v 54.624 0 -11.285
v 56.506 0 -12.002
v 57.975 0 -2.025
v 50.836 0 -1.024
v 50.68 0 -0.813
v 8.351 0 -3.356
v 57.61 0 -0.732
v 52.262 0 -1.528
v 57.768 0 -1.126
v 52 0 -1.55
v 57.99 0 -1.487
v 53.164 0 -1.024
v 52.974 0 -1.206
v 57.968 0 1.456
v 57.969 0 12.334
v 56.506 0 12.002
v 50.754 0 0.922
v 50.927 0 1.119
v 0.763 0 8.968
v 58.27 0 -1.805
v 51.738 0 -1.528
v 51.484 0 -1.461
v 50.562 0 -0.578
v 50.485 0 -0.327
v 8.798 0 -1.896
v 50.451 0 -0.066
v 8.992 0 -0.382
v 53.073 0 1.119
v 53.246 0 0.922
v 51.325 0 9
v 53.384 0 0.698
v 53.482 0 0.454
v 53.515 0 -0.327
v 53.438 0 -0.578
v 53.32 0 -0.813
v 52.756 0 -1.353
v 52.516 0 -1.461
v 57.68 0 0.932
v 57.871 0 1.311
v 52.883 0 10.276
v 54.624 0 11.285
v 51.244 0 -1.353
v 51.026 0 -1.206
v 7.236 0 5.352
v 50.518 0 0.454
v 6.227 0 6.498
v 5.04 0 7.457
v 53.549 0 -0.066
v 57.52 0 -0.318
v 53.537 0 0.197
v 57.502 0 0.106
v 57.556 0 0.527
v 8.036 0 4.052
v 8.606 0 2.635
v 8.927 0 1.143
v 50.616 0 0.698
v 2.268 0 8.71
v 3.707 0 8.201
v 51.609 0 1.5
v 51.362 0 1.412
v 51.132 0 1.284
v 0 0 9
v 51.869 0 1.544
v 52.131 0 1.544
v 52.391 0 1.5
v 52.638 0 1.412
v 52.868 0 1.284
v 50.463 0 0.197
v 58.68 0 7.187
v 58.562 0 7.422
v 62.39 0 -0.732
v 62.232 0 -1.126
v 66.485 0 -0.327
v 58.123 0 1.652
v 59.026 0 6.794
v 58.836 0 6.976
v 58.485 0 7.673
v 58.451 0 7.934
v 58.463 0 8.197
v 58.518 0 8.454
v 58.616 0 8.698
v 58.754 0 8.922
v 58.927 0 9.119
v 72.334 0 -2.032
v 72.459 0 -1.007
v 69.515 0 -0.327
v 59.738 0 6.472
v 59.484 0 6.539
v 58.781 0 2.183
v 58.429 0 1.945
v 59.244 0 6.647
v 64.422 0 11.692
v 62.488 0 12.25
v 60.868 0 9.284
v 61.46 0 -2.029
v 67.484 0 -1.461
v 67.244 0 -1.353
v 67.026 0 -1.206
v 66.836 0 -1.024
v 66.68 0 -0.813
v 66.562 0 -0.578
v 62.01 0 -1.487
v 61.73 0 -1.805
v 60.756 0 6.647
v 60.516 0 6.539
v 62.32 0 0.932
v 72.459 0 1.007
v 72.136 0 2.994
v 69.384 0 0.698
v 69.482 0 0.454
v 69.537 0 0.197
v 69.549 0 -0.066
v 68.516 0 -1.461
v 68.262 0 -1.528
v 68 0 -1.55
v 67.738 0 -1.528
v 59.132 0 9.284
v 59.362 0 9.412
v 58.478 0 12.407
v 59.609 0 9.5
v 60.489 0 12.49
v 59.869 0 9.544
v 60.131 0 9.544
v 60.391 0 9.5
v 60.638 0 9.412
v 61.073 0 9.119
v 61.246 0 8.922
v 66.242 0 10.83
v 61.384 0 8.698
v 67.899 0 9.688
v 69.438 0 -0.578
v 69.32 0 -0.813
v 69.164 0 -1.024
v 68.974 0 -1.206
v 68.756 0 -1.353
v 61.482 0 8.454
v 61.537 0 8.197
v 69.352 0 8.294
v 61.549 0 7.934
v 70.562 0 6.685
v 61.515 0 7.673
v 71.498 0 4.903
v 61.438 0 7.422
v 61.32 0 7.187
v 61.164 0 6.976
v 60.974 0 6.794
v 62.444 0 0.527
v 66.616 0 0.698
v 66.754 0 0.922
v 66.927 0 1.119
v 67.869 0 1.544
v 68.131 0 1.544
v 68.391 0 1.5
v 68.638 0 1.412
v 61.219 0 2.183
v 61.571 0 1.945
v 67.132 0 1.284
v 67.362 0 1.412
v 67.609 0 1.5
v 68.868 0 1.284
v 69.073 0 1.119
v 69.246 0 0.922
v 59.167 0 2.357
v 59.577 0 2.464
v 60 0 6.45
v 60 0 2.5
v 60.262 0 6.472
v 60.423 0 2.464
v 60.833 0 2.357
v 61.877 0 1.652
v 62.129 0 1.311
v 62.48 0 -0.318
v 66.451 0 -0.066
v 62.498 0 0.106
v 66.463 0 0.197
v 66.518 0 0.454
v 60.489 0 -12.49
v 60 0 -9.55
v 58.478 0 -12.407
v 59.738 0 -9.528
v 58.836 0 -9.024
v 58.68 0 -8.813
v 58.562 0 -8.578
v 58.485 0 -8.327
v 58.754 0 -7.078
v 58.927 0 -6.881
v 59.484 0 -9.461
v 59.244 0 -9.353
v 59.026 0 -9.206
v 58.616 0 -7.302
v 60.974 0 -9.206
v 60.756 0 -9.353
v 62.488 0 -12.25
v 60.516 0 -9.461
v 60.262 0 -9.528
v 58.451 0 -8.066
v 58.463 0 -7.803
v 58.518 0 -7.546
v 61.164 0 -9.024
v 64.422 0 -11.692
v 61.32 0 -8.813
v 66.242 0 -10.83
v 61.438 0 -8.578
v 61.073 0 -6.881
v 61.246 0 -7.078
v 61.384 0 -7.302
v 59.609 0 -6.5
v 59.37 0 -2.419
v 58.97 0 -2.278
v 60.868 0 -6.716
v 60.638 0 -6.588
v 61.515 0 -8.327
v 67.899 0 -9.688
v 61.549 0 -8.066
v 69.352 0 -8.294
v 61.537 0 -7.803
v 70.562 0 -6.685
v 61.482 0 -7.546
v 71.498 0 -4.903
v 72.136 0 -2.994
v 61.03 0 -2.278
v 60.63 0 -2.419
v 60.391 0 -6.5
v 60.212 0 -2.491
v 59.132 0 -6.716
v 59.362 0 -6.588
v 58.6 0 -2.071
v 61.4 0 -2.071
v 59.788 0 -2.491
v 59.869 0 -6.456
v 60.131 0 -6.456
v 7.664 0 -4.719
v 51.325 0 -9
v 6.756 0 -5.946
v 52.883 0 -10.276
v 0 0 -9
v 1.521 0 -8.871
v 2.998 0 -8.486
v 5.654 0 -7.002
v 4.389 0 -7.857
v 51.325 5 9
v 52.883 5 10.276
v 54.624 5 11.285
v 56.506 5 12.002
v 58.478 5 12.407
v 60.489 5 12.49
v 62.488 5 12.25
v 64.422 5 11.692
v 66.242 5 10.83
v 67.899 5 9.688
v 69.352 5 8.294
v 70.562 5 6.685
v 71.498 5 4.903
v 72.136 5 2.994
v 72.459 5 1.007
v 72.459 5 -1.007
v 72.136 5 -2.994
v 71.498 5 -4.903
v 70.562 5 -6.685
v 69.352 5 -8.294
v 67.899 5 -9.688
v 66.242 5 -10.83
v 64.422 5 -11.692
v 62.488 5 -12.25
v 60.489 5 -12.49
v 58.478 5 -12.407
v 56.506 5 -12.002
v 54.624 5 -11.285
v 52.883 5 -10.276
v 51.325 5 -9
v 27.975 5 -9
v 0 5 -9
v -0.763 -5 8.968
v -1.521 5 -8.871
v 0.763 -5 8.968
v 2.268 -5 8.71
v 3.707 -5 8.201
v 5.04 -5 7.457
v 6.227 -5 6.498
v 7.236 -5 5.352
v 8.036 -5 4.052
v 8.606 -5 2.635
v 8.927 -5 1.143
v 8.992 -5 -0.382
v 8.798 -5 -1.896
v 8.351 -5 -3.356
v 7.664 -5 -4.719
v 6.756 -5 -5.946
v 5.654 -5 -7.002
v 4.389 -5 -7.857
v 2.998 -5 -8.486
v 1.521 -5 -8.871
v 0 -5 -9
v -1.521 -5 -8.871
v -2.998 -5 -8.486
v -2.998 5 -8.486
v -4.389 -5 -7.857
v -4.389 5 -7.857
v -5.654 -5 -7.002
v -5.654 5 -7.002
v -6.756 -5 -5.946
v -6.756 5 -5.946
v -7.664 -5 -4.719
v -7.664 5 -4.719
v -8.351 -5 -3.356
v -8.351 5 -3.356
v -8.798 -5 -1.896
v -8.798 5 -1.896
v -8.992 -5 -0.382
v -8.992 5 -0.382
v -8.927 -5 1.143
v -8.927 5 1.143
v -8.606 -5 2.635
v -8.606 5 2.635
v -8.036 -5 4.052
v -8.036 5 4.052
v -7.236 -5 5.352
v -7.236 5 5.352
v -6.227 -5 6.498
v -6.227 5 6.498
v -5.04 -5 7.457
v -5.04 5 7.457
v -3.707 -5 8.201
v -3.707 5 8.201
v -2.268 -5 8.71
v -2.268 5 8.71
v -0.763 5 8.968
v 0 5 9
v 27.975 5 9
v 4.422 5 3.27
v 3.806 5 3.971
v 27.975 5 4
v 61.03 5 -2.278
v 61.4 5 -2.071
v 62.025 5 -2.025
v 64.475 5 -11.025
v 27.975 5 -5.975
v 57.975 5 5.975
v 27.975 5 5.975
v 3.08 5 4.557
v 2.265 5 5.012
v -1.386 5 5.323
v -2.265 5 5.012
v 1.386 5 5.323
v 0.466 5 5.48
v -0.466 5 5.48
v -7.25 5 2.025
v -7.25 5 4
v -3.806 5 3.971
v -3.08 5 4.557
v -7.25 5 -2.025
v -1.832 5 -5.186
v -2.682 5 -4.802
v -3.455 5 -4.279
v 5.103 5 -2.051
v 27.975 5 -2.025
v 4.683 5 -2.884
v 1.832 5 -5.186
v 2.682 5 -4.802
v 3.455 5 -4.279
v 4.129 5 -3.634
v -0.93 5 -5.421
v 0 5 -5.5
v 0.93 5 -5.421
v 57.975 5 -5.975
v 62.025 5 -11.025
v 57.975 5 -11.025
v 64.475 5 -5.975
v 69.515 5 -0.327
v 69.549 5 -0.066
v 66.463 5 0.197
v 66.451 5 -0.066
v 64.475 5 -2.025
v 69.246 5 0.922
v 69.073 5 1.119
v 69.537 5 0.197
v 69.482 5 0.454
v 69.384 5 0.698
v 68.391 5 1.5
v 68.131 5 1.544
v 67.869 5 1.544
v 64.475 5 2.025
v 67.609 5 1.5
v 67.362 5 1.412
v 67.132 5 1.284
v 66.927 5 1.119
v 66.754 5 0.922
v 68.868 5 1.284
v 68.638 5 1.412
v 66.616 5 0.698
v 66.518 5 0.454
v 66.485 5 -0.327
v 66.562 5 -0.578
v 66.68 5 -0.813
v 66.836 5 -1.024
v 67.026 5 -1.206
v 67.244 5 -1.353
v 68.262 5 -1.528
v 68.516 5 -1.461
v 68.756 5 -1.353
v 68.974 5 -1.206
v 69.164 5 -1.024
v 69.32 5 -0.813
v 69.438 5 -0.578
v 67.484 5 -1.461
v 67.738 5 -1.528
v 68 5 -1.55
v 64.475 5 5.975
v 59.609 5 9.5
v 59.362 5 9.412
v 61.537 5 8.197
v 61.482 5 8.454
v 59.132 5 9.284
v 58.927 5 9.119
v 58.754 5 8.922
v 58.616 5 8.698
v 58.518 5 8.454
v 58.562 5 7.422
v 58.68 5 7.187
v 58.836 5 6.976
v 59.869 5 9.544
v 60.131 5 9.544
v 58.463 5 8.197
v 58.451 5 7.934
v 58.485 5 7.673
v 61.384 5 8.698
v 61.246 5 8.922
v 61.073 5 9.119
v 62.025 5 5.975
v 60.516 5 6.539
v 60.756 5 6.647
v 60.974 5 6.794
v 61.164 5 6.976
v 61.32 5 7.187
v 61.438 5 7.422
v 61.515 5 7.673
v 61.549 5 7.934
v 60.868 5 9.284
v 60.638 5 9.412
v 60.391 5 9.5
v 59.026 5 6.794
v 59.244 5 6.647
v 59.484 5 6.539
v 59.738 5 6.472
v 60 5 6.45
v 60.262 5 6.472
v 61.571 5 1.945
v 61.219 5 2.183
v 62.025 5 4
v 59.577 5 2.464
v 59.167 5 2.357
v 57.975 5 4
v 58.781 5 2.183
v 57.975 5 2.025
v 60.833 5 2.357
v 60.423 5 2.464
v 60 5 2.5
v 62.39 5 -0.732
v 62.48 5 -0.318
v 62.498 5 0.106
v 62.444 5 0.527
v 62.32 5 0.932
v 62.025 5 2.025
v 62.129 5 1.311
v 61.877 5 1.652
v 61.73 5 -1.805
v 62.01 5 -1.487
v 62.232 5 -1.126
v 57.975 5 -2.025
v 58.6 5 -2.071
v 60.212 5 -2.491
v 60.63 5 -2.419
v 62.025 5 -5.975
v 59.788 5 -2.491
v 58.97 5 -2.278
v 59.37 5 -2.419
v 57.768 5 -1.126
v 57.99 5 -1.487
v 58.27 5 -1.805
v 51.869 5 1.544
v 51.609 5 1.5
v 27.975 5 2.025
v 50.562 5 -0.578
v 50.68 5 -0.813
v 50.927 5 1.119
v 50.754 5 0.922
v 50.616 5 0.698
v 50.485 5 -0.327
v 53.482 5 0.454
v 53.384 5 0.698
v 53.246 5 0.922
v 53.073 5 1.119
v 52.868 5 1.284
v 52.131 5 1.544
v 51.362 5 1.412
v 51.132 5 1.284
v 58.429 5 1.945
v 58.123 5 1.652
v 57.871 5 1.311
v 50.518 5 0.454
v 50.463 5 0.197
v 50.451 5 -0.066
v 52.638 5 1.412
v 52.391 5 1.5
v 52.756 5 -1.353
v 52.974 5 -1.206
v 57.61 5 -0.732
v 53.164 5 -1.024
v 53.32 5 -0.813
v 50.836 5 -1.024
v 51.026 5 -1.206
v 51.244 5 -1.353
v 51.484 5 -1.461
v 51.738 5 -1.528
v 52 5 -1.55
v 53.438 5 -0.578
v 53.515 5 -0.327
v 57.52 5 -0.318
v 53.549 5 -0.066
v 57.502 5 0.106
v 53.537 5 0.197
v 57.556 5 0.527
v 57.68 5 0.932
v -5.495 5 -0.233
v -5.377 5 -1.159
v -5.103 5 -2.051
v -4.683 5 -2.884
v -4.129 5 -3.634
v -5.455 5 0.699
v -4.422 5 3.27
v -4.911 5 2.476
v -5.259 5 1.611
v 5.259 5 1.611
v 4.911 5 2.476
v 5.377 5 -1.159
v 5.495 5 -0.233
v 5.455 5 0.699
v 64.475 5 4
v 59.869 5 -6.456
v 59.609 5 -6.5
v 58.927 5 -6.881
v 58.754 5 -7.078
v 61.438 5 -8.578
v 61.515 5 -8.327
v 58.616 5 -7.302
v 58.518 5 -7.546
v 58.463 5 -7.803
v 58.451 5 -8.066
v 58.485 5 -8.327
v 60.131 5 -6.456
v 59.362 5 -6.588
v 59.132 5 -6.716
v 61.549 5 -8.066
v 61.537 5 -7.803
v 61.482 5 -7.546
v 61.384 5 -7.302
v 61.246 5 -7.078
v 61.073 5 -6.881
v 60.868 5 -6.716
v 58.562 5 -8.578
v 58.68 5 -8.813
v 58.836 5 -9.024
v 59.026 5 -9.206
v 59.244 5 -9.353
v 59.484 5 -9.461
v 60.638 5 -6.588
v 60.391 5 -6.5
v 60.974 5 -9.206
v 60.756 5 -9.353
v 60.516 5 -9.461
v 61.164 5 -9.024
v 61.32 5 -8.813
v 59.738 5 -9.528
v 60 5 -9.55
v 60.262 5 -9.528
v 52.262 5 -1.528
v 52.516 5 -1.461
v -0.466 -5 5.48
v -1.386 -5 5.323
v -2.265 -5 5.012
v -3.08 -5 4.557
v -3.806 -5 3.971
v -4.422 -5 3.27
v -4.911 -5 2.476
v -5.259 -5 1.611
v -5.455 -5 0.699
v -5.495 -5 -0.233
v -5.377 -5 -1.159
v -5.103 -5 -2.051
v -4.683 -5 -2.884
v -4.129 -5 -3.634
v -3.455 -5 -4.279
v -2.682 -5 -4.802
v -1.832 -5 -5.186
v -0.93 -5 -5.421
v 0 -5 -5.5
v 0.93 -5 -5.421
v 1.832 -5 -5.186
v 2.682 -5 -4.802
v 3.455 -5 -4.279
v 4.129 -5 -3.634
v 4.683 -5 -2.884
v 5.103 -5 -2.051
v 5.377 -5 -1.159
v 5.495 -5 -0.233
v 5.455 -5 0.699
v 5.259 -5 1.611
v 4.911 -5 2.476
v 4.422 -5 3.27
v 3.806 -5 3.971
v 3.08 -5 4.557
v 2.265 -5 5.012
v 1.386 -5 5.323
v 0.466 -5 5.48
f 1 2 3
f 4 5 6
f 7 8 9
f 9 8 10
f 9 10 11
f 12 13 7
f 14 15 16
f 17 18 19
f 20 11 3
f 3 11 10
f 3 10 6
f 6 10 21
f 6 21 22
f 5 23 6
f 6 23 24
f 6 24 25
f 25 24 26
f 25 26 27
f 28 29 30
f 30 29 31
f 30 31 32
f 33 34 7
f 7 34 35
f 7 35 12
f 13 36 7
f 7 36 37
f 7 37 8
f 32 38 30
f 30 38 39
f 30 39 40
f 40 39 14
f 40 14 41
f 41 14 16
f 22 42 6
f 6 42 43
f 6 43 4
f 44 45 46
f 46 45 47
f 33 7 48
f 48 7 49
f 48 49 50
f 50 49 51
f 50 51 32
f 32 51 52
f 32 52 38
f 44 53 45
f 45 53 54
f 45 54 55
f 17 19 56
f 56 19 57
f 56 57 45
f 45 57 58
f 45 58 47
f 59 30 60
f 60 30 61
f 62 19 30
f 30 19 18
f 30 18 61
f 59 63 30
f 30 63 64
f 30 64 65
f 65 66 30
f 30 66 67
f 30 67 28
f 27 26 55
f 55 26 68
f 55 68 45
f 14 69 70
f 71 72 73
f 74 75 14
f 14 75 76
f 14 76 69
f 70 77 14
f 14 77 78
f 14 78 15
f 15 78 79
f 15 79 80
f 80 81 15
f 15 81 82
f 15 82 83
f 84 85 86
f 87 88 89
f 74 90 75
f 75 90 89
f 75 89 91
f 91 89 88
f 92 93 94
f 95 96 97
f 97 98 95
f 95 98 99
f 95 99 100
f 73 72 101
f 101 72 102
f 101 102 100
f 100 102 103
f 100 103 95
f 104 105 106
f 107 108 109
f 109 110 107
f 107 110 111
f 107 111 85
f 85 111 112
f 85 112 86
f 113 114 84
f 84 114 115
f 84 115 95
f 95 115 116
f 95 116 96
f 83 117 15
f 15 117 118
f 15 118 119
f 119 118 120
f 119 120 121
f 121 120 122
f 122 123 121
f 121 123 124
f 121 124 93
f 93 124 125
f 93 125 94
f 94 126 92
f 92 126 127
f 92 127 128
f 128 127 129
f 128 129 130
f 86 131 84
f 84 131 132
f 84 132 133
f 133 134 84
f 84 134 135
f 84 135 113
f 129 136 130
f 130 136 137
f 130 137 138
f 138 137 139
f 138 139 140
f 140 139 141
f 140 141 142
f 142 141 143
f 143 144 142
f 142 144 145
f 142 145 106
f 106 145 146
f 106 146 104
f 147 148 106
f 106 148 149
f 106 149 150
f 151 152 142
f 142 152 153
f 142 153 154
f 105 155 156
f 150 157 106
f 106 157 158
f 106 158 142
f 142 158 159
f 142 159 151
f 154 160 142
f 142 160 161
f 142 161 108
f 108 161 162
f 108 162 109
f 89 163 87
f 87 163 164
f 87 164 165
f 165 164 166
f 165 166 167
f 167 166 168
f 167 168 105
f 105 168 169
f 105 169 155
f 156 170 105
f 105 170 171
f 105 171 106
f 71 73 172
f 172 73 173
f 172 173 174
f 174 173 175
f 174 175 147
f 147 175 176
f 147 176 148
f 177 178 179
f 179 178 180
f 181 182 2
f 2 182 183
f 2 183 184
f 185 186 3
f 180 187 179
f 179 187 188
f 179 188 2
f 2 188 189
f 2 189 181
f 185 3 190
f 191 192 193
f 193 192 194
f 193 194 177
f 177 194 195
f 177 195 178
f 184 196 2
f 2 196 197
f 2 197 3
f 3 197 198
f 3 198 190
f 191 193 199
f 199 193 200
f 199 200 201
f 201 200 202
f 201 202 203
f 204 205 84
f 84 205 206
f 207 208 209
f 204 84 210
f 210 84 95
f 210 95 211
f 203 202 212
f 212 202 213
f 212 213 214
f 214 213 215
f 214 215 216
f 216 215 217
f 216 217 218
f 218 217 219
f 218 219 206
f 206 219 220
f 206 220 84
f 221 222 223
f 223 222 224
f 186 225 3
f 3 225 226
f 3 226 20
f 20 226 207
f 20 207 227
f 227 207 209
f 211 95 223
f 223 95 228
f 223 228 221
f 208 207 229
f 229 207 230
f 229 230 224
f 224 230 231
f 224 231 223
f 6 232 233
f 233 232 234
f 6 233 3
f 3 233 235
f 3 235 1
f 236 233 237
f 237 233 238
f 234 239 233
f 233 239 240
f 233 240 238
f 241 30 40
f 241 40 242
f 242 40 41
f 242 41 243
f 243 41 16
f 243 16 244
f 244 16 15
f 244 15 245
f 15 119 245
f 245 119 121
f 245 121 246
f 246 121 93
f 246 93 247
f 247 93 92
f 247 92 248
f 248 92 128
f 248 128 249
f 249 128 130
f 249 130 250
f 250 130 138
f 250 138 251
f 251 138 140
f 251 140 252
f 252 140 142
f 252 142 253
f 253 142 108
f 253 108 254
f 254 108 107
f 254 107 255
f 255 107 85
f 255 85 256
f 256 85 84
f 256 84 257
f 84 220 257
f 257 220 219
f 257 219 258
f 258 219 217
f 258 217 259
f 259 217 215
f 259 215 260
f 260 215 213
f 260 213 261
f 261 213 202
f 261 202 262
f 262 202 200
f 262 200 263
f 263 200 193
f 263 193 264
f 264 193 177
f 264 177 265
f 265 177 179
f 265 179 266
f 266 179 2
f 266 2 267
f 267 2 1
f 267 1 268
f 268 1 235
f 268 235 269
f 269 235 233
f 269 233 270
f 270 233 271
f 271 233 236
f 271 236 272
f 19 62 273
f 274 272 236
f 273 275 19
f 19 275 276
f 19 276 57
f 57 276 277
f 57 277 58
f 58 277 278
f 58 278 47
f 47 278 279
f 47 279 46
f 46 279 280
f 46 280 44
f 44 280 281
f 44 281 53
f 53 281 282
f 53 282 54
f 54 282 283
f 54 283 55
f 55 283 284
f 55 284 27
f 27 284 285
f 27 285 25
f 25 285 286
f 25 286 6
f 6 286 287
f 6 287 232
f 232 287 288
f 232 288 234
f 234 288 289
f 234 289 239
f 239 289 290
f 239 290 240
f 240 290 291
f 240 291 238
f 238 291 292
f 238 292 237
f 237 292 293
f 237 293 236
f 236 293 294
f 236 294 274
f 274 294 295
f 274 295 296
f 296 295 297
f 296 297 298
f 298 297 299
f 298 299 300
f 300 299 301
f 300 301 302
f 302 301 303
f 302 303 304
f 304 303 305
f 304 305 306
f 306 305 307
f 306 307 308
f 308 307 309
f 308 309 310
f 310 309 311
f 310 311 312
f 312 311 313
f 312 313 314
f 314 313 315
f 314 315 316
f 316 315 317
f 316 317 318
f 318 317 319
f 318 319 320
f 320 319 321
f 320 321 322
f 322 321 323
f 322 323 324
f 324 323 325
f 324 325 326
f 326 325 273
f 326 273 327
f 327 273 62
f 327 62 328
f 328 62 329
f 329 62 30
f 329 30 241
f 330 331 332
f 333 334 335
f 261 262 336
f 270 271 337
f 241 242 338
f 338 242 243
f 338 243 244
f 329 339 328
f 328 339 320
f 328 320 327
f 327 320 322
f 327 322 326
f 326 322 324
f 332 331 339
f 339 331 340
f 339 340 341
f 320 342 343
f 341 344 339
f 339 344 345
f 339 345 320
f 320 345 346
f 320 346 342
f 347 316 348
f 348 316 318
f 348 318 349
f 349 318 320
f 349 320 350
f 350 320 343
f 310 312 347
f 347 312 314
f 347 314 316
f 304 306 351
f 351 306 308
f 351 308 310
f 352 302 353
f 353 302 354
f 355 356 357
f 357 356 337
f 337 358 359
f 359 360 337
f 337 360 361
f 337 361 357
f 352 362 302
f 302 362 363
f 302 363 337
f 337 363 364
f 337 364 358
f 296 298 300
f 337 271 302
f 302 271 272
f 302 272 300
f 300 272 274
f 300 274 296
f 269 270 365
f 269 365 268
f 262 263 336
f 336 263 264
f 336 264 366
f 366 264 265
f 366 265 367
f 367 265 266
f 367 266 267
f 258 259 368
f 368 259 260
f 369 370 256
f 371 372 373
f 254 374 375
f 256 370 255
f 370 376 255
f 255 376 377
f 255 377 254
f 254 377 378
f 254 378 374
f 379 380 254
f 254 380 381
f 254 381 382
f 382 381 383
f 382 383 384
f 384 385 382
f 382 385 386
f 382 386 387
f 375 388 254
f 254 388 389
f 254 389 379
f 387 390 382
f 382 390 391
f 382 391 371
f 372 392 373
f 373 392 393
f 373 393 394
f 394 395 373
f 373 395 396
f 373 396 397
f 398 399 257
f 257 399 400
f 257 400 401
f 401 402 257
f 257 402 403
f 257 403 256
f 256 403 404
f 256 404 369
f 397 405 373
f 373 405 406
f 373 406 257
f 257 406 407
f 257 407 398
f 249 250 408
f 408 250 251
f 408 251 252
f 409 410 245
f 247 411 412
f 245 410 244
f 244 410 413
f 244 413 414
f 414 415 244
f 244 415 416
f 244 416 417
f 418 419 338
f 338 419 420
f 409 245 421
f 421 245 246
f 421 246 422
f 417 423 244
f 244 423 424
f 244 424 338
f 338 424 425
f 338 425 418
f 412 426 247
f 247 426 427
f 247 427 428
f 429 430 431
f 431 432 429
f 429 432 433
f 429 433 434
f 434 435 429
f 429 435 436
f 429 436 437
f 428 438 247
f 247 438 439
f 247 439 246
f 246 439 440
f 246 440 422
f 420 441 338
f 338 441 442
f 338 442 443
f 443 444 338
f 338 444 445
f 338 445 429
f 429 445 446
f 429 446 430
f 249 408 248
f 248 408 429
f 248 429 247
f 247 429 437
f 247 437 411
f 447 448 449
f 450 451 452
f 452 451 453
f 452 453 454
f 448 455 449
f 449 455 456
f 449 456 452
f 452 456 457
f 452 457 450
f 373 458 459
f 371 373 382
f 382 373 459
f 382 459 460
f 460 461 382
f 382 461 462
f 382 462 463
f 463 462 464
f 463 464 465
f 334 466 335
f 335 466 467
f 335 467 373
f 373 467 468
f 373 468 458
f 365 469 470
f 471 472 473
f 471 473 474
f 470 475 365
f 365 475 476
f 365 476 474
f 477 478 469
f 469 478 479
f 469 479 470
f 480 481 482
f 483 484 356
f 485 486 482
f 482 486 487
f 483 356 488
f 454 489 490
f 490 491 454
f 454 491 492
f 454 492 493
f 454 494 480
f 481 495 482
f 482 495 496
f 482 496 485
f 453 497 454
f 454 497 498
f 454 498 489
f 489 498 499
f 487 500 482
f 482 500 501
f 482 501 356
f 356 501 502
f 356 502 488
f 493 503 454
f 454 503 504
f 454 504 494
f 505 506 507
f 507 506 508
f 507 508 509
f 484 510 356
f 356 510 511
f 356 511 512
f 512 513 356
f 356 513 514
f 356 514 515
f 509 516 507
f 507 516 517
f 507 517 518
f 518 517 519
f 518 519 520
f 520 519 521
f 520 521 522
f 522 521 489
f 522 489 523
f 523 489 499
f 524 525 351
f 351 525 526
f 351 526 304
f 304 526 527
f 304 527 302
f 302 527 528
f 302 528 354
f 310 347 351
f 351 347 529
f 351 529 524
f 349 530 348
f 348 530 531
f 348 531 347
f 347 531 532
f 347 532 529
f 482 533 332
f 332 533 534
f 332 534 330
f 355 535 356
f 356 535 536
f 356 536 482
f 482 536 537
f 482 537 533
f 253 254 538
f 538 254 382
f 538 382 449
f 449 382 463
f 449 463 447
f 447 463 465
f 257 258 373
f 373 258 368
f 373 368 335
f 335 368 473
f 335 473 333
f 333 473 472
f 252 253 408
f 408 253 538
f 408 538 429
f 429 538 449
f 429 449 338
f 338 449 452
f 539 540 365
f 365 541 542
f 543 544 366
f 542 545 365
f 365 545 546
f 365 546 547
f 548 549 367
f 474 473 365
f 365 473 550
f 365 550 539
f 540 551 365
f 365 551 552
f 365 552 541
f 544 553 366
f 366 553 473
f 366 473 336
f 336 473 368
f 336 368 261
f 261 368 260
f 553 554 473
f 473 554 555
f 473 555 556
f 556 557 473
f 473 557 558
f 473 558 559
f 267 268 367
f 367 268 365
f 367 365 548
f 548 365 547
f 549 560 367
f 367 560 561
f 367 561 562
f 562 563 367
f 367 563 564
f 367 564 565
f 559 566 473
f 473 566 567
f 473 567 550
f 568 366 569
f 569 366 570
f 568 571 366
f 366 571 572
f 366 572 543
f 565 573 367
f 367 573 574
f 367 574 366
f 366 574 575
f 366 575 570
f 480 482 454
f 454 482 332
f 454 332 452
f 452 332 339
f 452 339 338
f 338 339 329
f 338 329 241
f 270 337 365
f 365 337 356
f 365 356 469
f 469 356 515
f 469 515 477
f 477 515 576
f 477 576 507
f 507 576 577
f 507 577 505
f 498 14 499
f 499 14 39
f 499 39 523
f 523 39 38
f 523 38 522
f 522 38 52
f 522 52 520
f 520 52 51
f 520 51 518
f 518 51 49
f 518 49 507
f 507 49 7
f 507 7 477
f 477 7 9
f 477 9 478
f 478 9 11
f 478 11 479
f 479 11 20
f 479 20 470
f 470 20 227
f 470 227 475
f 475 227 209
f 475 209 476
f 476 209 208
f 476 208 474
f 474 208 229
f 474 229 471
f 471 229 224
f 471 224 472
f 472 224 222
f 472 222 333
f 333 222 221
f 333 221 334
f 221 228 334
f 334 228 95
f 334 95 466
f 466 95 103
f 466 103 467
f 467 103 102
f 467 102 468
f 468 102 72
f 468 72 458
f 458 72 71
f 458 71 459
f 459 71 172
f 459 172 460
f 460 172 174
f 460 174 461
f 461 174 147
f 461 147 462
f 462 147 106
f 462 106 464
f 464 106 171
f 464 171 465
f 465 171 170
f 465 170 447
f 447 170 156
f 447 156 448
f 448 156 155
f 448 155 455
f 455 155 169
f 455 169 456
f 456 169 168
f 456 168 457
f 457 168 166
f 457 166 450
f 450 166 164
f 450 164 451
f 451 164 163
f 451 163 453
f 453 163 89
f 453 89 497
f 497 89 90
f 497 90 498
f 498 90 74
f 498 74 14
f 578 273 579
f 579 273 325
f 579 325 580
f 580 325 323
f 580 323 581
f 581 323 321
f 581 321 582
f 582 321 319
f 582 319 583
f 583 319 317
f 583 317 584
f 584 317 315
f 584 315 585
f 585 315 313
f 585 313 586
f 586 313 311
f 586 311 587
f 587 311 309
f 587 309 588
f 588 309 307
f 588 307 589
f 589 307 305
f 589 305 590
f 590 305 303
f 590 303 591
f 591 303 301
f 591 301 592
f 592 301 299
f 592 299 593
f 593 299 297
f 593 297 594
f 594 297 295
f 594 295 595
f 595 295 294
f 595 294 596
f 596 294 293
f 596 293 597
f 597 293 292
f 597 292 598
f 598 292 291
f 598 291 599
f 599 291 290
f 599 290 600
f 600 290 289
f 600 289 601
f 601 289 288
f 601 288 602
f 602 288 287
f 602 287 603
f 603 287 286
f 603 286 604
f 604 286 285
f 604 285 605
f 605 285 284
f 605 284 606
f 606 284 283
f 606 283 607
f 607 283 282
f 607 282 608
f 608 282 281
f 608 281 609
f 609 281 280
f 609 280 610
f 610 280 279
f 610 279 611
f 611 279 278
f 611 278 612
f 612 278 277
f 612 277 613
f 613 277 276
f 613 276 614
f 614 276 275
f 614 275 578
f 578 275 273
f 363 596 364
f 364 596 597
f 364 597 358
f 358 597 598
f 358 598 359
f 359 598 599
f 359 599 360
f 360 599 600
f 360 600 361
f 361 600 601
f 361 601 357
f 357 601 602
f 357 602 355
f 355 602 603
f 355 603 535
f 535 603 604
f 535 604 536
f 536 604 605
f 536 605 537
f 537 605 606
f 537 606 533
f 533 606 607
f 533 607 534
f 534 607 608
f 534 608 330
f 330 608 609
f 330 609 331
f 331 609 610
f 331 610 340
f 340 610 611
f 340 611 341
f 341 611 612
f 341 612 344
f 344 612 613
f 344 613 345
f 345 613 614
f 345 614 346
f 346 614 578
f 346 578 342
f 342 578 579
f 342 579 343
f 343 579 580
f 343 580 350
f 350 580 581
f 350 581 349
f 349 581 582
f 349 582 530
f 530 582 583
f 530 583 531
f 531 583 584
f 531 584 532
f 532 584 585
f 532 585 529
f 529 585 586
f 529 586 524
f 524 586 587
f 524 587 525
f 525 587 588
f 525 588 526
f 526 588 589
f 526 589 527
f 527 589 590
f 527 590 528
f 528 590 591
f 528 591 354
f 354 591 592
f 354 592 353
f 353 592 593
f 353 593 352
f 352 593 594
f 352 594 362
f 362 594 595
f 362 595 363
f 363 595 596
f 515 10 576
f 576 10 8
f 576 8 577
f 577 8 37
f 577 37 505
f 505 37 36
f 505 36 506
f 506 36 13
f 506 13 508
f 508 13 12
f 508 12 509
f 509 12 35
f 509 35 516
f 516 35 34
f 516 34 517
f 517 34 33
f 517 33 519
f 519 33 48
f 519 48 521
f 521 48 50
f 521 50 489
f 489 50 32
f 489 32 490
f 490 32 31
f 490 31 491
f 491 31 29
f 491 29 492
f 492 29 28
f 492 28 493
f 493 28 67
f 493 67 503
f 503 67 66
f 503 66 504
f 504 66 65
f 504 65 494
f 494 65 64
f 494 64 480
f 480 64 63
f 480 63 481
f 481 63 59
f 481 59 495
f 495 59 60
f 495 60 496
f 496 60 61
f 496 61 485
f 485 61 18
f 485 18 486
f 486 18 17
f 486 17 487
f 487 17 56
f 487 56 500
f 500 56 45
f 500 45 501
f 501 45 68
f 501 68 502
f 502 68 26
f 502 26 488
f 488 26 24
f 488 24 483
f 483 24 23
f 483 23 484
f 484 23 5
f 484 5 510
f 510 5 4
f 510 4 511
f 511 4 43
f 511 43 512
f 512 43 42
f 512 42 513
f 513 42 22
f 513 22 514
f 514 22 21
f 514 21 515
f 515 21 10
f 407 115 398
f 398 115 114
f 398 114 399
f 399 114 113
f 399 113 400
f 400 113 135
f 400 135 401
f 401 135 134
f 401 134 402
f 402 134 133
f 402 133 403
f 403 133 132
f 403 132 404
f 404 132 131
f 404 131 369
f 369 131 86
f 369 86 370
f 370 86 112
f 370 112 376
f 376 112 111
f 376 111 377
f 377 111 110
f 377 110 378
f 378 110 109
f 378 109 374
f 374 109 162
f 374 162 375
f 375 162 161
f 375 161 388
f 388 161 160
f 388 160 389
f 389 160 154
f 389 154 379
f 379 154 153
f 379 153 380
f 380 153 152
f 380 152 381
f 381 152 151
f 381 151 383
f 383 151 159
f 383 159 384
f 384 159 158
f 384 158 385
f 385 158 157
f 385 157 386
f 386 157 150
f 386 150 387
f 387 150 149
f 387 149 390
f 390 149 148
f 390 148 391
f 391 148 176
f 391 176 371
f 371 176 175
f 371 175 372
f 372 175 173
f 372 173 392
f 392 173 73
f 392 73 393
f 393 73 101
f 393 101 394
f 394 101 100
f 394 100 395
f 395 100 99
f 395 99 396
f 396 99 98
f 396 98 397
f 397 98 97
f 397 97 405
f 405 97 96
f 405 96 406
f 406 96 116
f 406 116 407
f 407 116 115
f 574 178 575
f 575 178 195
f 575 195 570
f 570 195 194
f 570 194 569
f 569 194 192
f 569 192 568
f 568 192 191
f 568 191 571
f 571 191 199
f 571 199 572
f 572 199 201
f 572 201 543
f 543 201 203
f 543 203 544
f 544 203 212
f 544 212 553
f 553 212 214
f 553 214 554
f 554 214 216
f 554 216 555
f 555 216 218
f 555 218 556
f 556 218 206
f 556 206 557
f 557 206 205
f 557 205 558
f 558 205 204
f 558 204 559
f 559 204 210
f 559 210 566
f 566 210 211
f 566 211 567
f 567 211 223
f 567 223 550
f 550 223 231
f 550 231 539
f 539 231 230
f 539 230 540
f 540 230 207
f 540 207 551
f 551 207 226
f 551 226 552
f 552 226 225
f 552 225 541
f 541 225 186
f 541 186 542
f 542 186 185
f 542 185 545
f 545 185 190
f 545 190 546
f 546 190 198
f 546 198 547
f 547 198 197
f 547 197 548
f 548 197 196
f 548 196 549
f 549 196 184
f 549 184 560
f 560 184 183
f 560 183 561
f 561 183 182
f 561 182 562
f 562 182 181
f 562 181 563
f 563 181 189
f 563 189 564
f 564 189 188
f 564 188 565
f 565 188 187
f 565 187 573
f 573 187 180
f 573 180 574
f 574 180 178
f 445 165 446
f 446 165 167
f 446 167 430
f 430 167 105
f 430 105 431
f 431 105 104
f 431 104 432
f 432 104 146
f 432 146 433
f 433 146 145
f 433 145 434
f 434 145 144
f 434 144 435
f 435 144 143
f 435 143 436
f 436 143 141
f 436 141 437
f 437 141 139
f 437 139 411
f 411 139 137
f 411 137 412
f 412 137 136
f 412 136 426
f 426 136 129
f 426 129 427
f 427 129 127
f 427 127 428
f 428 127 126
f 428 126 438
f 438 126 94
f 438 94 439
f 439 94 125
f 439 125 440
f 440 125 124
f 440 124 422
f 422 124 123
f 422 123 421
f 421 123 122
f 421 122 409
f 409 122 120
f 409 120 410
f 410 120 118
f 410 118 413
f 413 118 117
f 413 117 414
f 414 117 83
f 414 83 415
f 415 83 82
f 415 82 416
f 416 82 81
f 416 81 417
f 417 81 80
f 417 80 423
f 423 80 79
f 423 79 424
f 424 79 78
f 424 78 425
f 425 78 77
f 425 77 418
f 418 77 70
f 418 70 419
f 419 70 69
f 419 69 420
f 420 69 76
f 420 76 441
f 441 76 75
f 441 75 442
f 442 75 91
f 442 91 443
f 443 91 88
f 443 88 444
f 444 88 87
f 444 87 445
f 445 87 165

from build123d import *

# Parameters (mm, degrees)
BOSS_EXTRUDE1_DEPTH = 5
SKETCH2_R           = 2.5
CUT_EXTRUDE1_DEPTH  = 74.739406019
BOSS_EXTRUDE3_START = 5
SKETCH7_R           = 9
BOSS_EXTRUDE3_DEPTH = 5
SKETCH8_R           = 5.5
CUT_EXTRUDE3_DEPTH  = 75.246212025
SKETCH9_R           = 1.55
CUT_EXTRUDE4_DEPTH  = 74.739406019


with BuildPart() as part:
    # Sketch1 → Boss-Extrude1 (new body)
    with BuildSketch(Plane(origin=(0, 0, 0), x_dir=(1, 0, 0), z_dir=(0, 1, 0))):
        with BuildLine():
            Line((0, 9), (51.325324214, 9))
            ThreePointArc((51.325324214, 9), (72.5, 0), (51.325324214, -9))
            Line((51.325324214, -9), (0, -9))
            ThreePointArc((0, -9), (-9, 0), (0, 9))
        make_face()
    extrude(amount=BOSS_EXTRUDE1_DEPTH)

    # Sketch2 → Cut-Extrude1 (cut, through all)
    with BuildSketch(Plane(origin=(0, 5, 0), x_dir=(1, 0, 0), z_dir=(0, 1, 0))):
        with Locations(Location((60, 0, 0), (0, 0, 270))):
            Circle(SKETCH2_R)
    extrude(amount=-CUT_EXTRUDE1_DEPTH, mode=Mode.SUBTRACT)

    # Sketch7 → Boss-Extrude3 (add)
    with BuildSketch(Plane.XZ.offset(BOSS_EXTRUDE3_START)):
        with Locations(Location((0, 0, 0), (0, 0, 270))):
            Circle(SKETCH7_R)
    extrude(amount=-BOSS_EXTRUDE3_DEPTH)

    # Sketch8 → Cut-Extrude3 (cut, through all)
    with BuildSketch(Plane.XZ.offset(5)):
        with Locations(Location((0, 0, 0), (0, 0, 270))):
            Circle(SKETCH8_R)
    extrude(amount=-CUT_EXTRUDE3_DEPTH, mode=Mode.SUBTRACT)

    # Sketch9 → Cut-Extrude4 (cut, through all)
    with BuildSketch(Plane.XZ):
        with Locations(Location((60, 8, 0), (0, 0, 270))):
            Circle(SKETCH9_R)
        with Locations(Location((60, -8, 0), (0, 0, 270))):
            Circle(SKETCH9_R)
        with Locations(Location((68, 0, 0), (0, 0, 270))):
            Circle(SKETCH9_R)
        with Locations(Location((52, 0, 0), (0, 0, 270))):
            Circle(SKETCH9_R)
    extrude(amount=-CUT_EXTRUDE4_DEPTH, mode=Mode.SUBTRACT)


solid = part.part
